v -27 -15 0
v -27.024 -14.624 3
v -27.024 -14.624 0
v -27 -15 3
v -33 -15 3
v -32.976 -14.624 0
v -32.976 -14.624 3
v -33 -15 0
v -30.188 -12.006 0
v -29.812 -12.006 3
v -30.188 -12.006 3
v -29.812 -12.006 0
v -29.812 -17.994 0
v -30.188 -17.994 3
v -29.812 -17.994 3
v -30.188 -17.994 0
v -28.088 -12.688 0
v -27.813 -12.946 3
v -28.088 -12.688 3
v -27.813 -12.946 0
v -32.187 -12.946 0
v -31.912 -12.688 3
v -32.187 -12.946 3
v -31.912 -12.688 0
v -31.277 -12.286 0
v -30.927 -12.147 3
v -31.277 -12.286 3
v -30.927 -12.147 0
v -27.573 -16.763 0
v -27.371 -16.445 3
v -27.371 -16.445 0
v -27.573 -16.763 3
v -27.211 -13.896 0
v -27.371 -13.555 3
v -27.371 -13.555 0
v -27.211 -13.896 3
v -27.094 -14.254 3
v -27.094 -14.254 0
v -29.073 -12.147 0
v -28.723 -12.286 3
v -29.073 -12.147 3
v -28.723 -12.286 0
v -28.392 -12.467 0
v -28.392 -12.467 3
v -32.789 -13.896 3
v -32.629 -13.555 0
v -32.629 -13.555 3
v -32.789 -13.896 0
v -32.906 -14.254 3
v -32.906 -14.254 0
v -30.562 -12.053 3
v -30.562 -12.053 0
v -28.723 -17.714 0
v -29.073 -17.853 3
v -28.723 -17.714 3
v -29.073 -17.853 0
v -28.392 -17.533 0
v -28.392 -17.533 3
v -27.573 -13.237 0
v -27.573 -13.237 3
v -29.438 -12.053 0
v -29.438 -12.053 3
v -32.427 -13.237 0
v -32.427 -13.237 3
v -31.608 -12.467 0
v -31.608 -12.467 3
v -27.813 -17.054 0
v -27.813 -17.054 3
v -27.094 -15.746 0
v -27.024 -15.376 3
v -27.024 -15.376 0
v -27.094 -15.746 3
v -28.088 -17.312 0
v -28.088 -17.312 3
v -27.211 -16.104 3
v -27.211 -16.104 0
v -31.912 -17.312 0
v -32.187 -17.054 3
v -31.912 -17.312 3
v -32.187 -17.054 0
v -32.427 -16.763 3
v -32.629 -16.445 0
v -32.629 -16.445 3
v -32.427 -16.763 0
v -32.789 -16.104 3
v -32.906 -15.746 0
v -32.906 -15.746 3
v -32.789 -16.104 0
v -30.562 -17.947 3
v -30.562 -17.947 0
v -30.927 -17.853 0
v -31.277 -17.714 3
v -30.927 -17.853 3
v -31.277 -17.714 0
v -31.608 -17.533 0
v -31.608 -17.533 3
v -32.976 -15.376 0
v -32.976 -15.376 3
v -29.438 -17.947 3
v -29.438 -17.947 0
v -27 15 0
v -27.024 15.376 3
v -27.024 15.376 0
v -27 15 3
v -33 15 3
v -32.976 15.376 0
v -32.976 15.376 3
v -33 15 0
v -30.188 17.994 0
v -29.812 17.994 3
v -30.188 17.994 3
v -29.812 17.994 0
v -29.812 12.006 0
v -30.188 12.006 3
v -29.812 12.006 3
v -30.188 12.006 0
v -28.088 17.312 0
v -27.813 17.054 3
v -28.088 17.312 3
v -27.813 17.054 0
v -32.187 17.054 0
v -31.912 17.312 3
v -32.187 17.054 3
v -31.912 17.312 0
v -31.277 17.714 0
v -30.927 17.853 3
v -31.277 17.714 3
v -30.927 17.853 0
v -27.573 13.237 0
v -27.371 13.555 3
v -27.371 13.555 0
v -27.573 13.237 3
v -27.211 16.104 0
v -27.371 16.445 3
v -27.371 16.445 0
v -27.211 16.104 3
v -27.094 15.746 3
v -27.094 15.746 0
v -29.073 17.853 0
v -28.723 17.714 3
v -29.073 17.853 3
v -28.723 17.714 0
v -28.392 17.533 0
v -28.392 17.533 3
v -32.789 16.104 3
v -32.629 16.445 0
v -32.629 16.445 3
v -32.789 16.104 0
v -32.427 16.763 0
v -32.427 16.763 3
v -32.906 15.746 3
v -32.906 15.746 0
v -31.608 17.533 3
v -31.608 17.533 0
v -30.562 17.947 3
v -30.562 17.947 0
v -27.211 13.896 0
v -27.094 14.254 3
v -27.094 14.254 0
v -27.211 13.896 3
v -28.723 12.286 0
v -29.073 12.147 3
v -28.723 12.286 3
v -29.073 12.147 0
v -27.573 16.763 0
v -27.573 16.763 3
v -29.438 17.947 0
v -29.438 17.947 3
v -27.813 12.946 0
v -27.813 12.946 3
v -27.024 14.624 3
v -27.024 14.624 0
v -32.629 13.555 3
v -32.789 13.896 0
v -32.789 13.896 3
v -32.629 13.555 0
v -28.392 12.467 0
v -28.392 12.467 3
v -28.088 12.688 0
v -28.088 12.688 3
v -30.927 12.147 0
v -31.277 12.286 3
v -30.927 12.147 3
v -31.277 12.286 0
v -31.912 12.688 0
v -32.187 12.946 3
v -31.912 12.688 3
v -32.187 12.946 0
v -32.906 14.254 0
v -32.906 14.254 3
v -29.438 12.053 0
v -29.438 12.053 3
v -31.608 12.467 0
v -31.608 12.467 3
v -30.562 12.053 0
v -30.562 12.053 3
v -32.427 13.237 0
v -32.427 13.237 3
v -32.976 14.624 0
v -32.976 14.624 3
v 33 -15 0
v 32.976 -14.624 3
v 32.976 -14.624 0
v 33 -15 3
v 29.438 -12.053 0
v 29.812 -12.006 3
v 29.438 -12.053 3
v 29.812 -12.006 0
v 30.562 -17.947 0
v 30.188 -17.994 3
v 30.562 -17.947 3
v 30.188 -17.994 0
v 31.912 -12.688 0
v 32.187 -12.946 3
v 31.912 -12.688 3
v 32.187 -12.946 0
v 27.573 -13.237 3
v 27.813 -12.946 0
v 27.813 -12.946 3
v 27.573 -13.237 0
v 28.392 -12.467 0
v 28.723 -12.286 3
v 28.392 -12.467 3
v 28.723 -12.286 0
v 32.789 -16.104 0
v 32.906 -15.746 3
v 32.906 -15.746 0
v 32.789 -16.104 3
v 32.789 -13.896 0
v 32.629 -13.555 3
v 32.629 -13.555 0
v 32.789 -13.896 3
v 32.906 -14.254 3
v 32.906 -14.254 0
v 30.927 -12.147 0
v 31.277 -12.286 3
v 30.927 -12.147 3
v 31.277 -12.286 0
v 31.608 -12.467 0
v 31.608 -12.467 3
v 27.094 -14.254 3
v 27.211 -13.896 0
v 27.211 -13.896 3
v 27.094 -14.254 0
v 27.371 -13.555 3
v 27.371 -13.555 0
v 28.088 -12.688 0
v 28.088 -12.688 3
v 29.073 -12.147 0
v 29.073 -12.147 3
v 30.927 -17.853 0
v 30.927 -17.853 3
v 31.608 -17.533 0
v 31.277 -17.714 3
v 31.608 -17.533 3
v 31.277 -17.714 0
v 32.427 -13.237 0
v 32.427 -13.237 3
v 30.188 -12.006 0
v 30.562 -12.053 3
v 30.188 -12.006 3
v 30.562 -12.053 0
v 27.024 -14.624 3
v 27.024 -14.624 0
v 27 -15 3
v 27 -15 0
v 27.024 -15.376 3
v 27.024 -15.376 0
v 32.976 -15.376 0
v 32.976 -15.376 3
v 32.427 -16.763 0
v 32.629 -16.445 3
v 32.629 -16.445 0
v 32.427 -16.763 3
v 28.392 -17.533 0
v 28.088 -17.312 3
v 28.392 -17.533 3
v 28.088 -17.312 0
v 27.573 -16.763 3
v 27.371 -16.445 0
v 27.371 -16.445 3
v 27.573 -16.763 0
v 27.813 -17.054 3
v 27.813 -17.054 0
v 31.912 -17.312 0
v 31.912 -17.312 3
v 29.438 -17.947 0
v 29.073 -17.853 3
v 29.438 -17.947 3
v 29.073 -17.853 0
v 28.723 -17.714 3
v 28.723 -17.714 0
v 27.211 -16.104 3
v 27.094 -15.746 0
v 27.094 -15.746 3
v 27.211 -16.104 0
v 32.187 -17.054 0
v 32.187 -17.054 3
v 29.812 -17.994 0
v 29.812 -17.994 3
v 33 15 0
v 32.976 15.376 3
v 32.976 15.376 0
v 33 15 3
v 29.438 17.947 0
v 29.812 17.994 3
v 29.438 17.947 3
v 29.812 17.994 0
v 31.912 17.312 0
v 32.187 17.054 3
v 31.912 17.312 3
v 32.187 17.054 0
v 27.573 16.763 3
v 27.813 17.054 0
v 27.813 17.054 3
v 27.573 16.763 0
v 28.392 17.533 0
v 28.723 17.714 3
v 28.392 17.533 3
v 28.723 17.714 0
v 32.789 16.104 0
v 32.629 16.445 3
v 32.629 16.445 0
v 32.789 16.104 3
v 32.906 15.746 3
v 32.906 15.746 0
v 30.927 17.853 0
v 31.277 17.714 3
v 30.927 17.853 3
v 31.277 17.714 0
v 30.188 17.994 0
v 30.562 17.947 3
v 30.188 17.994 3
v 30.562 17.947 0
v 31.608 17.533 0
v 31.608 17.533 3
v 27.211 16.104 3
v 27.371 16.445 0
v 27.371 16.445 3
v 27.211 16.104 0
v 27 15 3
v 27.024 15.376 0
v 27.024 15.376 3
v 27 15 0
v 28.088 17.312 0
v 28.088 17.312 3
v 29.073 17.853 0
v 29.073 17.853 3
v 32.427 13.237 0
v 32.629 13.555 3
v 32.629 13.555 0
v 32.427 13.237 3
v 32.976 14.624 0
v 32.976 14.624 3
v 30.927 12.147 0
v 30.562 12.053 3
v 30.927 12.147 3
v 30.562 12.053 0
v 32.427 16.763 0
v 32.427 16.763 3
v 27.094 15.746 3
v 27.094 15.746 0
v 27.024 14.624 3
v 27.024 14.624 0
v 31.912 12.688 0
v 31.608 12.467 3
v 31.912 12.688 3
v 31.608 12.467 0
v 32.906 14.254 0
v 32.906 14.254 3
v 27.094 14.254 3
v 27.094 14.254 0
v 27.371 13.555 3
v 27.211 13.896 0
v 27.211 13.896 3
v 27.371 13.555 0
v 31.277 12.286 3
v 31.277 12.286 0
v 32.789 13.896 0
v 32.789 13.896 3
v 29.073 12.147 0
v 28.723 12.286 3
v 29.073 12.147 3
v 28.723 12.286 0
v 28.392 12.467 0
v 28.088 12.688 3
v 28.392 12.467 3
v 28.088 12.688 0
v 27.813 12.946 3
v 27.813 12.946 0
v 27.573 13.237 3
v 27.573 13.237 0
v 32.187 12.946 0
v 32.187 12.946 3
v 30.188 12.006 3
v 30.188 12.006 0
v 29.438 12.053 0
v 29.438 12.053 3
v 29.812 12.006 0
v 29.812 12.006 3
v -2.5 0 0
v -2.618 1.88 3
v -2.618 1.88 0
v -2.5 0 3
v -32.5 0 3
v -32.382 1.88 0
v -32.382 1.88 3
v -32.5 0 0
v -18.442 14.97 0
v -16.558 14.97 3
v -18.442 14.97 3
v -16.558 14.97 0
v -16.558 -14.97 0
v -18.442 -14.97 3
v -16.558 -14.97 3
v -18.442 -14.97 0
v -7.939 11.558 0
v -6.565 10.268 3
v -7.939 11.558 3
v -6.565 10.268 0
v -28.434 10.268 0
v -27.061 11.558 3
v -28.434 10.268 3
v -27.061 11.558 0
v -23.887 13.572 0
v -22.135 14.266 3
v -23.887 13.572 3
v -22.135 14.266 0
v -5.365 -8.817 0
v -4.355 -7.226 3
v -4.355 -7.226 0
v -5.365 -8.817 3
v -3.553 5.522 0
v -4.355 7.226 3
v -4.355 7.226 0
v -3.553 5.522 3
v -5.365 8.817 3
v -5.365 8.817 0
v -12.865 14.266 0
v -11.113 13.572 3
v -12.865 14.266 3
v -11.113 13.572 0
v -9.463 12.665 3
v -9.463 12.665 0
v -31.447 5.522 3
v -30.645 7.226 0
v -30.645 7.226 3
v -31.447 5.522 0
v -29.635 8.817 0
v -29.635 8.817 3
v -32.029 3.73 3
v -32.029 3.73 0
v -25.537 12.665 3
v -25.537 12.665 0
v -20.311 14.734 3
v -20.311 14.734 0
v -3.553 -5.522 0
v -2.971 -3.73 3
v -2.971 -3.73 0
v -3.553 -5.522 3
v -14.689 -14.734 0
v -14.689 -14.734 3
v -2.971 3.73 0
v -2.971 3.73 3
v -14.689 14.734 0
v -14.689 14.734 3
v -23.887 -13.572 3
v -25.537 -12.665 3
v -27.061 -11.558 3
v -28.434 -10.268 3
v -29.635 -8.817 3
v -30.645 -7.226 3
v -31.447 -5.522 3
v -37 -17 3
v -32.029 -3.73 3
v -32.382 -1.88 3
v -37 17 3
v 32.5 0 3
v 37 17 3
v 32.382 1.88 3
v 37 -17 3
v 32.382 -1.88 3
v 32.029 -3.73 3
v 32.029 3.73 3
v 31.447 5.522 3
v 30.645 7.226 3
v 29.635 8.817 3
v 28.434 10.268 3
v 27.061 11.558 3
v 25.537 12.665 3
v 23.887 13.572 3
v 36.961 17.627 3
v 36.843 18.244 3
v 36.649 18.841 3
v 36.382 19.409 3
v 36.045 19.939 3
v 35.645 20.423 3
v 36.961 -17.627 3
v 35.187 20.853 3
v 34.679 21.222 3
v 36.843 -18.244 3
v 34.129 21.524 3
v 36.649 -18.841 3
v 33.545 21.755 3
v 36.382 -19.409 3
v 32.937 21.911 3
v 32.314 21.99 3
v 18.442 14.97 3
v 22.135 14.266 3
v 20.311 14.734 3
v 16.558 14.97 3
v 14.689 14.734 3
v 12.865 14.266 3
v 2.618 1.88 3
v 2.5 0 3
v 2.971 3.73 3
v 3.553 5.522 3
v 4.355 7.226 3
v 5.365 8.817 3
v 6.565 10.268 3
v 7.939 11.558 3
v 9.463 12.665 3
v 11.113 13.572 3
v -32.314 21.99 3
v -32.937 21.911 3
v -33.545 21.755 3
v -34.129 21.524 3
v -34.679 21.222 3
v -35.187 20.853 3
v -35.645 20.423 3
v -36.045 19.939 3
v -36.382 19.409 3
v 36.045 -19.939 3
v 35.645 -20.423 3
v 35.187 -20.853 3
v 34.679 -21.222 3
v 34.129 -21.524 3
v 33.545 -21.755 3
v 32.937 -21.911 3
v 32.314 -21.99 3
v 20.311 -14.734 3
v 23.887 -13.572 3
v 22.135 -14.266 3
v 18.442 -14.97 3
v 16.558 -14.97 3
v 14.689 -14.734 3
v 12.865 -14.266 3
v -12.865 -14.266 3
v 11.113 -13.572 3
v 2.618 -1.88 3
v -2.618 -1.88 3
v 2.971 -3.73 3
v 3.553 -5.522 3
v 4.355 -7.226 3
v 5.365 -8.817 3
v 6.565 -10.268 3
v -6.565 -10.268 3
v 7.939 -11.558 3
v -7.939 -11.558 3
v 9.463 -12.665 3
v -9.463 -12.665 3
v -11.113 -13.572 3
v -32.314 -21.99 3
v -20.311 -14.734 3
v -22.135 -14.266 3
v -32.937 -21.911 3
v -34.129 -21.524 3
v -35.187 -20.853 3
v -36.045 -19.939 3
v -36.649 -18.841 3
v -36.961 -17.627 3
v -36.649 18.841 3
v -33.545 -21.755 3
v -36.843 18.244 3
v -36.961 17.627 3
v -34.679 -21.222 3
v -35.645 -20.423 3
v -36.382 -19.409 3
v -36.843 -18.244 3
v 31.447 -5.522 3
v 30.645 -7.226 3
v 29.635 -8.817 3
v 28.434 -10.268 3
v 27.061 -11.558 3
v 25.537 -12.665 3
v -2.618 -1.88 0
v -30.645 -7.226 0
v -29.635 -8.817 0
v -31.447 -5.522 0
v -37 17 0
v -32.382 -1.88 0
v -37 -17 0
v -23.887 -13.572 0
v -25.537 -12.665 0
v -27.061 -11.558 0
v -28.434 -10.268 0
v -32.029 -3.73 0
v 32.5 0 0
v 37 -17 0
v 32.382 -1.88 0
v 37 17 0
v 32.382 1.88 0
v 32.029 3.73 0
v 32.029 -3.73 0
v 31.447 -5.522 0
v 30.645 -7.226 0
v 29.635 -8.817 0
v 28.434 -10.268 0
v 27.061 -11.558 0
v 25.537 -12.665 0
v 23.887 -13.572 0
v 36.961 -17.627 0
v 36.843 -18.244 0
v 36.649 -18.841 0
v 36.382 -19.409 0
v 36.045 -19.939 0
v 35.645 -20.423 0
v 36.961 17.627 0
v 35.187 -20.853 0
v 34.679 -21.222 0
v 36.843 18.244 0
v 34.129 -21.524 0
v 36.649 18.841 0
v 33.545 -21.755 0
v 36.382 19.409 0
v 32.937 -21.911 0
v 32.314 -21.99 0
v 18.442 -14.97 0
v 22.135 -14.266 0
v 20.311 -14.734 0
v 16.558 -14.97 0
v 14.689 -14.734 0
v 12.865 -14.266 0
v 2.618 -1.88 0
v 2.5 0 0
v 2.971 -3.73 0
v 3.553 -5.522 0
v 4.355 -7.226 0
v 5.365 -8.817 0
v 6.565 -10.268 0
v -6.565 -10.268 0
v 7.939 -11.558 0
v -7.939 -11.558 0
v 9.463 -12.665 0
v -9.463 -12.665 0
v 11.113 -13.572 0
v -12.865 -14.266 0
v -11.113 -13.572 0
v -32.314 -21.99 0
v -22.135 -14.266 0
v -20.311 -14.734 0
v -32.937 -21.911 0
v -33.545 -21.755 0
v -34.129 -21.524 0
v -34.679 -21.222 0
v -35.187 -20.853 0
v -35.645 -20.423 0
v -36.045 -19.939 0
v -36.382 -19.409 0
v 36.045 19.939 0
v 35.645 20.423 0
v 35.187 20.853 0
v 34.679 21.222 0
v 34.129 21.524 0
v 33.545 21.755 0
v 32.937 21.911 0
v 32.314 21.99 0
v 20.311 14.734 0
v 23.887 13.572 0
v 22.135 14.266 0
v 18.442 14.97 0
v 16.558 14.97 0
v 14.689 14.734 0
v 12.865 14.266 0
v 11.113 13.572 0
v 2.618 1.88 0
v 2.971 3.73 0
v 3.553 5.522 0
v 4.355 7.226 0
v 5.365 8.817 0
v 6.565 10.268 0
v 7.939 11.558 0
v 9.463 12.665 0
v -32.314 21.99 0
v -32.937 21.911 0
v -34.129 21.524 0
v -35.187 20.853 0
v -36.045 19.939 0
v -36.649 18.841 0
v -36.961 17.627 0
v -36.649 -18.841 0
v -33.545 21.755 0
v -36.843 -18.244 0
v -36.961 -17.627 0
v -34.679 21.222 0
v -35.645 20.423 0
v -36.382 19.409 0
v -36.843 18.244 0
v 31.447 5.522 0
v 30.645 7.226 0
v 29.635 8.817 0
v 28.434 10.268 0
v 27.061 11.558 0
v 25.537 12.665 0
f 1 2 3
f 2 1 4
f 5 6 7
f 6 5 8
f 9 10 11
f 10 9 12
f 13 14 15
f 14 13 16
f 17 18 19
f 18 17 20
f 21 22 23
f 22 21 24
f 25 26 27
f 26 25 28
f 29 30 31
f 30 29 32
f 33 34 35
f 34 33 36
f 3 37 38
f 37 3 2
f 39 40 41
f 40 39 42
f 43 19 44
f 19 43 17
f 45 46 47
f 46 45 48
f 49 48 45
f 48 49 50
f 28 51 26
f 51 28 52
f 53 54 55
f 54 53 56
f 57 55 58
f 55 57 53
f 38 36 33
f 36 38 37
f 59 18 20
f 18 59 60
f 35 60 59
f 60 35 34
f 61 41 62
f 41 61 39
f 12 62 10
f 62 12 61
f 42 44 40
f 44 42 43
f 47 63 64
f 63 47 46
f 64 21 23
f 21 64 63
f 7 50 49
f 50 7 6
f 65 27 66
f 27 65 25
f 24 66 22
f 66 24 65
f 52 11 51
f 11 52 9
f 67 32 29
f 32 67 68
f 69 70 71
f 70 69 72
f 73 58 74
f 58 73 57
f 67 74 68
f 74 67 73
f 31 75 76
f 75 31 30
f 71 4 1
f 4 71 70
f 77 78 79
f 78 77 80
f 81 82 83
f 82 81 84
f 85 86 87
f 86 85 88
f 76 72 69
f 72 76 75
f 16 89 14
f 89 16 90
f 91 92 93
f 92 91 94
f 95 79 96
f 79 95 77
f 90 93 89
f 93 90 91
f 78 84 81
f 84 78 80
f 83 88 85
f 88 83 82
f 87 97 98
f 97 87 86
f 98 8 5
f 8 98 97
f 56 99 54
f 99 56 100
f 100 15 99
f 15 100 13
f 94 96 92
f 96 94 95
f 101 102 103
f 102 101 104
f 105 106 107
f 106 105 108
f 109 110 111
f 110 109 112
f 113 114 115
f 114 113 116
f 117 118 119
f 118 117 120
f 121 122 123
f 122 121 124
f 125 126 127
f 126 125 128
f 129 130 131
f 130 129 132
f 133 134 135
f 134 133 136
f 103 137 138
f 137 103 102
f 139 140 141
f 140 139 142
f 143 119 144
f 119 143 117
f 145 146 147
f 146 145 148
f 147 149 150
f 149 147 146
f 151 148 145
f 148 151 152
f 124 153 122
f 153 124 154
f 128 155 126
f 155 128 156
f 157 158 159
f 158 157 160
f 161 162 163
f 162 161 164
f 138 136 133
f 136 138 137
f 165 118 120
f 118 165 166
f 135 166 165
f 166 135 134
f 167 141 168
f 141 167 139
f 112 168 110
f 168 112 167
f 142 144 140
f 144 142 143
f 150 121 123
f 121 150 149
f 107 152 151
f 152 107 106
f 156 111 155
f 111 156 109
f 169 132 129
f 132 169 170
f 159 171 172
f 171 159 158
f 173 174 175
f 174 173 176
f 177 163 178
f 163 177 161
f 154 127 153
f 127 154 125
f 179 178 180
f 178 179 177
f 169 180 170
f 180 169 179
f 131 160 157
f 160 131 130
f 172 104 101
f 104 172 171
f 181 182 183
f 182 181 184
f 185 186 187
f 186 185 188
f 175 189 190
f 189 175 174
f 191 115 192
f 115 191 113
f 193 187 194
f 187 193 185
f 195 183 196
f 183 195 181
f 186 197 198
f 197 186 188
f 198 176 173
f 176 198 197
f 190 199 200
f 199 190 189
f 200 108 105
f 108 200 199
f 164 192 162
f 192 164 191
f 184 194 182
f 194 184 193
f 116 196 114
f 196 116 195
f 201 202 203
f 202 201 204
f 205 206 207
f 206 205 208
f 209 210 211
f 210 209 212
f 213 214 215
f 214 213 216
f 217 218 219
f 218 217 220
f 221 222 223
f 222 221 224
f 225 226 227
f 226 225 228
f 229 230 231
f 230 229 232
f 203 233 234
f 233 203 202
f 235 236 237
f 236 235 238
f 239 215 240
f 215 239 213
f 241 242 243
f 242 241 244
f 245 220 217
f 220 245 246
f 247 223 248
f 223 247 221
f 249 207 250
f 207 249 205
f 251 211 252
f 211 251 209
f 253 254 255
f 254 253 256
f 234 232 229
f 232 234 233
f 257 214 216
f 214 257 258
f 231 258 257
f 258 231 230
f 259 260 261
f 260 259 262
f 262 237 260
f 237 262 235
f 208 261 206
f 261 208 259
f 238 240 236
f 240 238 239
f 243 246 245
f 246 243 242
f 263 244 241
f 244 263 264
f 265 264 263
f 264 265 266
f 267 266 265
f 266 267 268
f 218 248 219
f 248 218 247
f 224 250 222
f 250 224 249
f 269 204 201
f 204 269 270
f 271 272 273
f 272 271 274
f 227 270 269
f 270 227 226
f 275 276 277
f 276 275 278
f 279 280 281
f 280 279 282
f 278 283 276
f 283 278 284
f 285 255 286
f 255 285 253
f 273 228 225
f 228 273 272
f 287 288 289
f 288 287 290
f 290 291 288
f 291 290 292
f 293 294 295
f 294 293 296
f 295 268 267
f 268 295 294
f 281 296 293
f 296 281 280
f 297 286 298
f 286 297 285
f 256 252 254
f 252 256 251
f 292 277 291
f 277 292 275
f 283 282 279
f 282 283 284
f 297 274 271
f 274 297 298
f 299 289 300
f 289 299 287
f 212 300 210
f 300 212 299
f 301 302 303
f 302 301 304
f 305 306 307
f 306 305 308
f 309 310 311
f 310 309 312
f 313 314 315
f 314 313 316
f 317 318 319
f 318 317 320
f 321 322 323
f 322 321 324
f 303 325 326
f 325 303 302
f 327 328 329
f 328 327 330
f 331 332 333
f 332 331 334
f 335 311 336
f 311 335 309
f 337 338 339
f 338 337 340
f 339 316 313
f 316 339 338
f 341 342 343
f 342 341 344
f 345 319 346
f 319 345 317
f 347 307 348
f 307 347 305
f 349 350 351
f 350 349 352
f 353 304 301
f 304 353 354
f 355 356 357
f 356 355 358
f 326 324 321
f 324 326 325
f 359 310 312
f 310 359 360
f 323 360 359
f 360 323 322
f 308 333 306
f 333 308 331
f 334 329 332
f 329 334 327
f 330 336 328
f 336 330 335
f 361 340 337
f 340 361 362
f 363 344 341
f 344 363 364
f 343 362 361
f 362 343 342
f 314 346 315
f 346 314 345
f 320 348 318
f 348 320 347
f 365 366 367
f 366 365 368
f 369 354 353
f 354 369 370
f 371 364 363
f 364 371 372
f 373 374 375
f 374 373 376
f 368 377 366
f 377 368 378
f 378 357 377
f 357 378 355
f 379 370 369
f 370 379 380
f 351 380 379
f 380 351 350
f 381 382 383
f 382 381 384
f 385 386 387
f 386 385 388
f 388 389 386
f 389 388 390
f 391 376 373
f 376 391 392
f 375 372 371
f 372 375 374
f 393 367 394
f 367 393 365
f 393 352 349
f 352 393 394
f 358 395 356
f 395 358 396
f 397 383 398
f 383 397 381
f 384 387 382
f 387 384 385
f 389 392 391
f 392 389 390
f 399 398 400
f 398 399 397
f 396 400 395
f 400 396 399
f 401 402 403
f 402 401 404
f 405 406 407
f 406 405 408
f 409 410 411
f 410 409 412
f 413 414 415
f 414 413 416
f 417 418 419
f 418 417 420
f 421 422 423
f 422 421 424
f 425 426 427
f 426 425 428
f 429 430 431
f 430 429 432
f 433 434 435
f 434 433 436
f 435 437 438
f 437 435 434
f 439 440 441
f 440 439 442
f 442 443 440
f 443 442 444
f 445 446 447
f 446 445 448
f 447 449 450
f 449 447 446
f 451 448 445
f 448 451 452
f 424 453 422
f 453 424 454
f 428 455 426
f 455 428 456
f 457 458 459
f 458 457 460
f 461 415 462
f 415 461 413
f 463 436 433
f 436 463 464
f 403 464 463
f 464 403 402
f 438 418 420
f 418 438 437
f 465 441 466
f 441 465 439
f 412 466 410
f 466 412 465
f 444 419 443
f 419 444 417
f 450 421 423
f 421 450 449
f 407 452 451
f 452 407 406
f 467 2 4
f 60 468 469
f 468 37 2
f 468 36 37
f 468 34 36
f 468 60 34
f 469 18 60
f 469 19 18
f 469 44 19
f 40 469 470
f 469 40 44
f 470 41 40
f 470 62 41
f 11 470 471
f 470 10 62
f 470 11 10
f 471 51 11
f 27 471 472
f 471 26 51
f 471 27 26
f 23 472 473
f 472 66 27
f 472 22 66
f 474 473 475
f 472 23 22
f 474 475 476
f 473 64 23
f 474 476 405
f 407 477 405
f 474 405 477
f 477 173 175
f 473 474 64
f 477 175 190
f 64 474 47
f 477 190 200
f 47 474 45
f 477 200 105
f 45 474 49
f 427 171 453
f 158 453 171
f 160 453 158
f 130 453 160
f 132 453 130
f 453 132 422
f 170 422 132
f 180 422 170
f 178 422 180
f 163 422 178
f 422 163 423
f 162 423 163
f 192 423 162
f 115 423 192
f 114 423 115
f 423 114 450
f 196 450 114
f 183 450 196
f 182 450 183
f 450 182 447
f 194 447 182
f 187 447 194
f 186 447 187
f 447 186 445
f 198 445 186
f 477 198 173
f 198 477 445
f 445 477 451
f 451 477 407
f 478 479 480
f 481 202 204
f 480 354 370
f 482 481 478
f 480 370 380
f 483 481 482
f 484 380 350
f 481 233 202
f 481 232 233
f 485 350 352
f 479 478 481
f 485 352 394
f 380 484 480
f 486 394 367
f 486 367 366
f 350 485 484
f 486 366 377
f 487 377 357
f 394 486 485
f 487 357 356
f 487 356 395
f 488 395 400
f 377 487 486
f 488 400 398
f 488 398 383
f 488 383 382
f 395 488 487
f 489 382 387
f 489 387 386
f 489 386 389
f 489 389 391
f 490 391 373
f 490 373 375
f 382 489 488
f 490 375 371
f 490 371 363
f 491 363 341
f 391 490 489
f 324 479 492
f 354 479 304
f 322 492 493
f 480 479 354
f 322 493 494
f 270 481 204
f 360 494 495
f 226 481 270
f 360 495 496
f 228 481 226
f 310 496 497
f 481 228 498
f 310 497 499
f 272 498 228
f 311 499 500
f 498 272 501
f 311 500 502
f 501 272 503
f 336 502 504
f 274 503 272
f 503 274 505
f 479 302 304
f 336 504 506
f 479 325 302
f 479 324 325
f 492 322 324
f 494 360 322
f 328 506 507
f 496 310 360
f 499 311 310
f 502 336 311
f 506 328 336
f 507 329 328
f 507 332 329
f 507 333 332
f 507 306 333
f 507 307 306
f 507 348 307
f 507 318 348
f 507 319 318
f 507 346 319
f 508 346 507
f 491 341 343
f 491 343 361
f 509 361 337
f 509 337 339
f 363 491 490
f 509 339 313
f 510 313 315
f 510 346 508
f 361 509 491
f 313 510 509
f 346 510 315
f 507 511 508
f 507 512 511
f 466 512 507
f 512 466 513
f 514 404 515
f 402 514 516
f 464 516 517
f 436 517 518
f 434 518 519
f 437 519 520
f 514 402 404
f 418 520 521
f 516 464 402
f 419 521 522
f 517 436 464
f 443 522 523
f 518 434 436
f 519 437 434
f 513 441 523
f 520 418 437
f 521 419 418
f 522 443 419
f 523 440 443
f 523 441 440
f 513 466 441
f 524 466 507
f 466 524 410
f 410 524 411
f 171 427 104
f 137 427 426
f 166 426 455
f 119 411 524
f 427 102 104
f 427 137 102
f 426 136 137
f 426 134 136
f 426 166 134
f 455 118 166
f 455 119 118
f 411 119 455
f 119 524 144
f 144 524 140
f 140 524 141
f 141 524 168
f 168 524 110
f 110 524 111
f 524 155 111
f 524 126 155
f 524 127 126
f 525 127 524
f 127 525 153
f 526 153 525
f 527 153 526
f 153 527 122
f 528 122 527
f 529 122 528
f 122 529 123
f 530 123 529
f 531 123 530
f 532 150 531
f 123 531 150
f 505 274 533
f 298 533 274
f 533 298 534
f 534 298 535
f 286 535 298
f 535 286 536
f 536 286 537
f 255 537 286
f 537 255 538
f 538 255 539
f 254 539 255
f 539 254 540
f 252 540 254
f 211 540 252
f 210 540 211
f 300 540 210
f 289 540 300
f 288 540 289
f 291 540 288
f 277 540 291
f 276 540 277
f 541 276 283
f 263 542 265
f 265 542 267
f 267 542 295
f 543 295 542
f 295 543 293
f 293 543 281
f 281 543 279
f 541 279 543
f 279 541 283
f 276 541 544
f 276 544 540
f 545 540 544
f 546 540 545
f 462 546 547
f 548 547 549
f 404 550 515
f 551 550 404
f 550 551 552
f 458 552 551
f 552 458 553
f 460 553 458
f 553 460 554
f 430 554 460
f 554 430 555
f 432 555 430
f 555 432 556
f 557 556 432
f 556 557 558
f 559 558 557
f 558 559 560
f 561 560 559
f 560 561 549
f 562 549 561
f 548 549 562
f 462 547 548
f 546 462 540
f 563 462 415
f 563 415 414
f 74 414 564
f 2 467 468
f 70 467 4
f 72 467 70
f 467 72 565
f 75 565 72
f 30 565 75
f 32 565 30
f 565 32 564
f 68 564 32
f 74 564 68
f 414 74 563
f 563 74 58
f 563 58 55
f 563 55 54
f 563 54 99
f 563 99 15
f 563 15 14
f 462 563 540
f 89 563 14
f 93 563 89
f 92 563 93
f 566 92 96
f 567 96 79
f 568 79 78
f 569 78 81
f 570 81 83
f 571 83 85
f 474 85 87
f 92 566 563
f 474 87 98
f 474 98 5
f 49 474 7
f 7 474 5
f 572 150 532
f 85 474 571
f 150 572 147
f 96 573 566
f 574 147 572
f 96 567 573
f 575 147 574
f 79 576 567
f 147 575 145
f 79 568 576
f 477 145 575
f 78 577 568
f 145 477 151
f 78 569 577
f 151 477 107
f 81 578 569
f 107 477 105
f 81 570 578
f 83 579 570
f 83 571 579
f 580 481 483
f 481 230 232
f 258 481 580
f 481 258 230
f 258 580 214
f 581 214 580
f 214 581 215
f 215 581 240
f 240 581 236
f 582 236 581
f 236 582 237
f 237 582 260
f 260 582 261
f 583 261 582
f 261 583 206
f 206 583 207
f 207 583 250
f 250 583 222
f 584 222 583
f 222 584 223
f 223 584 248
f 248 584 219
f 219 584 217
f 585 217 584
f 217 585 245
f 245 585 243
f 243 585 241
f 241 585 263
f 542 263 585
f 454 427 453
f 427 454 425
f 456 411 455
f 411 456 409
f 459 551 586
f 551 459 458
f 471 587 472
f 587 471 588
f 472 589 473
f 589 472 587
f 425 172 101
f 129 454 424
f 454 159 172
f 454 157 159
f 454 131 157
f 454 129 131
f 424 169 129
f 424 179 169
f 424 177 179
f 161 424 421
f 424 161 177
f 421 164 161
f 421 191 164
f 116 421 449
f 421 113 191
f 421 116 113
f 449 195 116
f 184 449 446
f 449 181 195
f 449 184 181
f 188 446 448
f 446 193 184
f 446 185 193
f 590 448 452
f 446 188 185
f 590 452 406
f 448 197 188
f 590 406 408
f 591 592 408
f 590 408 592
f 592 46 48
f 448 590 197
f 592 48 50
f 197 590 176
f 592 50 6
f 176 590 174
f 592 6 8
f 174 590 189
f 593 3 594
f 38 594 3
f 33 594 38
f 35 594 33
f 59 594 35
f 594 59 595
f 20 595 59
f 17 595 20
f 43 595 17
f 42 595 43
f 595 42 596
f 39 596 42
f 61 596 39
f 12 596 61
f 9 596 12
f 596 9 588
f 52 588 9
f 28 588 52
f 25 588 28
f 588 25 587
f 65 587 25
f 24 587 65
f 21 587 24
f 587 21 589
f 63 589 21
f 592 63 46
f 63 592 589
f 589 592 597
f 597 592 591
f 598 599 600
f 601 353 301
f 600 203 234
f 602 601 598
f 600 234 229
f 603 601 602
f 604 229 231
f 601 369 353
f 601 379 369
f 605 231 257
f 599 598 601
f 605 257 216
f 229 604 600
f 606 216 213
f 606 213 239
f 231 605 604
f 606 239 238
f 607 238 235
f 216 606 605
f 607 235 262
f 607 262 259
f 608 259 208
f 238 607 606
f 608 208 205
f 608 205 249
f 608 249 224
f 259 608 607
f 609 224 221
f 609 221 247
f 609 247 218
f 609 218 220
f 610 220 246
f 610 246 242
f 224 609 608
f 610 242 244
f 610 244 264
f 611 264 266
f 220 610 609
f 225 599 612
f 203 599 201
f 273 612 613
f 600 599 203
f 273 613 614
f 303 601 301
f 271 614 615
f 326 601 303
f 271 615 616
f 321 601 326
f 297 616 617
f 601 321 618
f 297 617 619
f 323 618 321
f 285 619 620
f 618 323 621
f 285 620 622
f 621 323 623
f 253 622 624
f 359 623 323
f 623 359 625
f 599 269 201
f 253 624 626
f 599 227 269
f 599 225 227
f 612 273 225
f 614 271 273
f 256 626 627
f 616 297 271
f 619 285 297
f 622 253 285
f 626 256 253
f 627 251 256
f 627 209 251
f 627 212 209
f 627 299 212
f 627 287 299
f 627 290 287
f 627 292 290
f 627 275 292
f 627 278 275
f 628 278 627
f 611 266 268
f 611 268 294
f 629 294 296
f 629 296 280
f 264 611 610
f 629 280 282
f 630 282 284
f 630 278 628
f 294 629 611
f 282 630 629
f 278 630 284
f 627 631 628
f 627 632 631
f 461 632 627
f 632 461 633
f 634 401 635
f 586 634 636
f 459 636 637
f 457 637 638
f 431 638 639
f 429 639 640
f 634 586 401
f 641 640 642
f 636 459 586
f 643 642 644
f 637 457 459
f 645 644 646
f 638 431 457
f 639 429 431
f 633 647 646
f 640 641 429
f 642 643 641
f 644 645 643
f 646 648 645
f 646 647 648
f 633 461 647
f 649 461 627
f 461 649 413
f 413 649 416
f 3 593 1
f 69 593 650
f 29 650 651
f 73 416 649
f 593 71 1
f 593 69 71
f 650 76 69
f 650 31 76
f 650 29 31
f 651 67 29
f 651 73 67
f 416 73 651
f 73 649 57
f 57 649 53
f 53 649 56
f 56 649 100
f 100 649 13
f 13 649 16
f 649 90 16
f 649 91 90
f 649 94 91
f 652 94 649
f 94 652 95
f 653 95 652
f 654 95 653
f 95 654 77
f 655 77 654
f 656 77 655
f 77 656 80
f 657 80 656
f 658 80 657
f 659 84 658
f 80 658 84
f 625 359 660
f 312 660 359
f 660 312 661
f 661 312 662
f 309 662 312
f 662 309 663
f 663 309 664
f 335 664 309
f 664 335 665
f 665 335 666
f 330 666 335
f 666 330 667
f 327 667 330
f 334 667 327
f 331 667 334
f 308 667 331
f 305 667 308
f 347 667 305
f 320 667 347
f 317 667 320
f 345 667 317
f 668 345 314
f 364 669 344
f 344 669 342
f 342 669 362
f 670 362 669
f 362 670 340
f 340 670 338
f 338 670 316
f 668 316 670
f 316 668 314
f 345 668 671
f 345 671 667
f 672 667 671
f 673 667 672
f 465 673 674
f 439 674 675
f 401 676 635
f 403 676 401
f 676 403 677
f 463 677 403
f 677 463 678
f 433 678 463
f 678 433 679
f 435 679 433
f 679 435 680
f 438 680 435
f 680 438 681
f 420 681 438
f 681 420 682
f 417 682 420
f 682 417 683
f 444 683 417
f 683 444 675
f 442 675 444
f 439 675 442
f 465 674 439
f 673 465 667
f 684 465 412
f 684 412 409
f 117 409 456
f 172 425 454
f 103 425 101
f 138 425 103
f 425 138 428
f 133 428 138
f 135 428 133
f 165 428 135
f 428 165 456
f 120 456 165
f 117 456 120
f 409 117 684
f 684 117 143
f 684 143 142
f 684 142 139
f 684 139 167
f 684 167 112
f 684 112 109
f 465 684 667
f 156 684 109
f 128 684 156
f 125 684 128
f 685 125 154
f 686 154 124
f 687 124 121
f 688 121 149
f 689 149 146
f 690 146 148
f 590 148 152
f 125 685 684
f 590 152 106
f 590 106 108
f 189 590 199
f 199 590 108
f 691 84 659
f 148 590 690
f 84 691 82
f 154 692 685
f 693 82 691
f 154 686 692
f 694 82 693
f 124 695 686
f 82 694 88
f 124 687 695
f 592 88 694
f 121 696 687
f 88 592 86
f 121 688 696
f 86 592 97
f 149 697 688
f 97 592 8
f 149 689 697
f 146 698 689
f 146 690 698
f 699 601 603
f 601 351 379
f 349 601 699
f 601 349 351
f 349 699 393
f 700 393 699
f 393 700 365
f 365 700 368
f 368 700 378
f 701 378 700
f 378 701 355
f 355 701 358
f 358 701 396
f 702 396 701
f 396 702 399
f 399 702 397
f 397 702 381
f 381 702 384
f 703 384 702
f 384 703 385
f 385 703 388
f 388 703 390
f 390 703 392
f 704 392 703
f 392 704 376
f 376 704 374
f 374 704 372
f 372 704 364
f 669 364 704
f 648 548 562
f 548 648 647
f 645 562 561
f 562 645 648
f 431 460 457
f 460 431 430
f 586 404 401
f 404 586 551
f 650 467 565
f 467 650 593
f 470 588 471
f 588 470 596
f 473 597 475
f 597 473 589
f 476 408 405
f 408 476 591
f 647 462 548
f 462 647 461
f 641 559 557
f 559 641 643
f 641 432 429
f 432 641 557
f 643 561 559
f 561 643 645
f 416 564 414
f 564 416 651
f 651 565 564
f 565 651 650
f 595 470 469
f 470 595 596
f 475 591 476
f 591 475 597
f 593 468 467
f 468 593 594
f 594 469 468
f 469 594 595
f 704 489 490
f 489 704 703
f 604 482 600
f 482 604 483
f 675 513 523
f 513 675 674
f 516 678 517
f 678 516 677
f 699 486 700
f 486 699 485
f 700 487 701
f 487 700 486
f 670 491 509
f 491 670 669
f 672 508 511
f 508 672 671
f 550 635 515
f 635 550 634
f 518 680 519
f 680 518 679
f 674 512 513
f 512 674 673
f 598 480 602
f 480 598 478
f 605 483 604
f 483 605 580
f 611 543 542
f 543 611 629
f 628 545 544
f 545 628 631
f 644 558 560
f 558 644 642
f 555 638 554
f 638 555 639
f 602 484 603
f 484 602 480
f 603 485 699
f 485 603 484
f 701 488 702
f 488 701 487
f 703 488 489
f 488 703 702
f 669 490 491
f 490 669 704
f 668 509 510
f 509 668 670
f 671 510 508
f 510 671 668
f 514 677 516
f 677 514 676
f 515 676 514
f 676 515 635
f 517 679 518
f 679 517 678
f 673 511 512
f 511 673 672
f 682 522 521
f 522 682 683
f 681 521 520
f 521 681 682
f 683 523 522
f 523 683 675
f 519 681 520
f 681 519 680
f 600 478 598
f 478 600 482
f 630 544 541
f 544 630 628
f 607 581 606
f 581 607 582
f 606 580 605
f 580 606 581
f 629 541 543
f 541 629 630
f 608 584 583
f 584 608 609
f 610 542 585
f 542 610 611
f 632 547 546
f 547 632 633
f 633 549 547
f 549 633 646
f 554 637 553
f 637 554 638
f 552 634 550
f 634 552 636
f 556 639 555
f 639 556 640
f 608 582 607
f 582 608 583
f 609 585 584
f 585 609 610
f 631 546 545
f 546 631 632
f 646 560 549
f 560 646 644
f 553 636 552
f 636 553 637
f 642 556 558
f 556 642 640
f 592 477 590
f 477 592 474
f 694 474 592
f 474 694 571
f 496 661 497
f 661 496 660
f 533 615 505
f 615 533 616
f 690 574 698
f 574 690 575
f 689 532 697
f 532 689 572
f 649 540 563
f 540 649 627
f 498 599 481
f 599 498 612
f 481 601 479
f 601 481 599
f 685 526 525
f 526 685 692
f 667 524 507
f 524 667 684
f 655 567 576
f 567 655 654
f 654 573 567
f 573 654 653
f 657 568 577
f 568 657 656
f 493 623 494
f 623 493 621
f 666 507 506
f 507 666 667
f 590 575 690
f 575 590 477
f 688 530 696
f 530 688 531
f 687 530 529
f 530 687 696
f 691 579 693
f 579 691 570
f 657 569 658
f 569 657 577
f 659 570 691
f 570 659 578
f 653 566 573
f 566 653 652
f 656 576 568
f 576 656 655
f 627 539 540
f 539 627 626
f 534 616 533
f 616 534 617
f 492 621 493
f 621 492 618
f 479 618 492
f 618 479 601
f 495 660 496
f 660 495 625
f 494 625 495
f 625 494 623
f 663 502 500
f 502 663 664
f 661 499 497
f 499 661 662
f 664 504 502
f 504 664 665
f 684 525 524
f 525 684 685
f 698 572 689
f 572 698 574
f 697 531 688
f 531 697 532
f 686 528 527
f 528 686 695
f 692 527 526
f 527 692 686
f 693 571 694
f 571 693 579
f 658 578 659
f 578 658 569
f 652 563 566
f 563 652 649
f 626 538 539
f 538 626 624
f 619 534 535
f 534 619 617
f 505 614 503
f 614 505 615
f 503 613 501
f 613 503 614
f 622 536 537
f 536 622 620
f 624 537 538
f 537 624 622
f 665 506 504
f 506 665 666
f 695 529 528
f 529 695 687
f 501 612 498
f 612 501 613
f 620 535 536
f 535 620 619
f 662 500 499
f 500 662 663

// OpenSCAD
$fn = 50;


difference() {
	union() {
		hull() {
			translate(v = [-32.0000000000, 17.0000000000, 0]) {
				cylinder(h = 3, r = 5);
			}
			translate(v = [32.0000000000, 17.0000000000, 0]) {
				cylinder(h = 3, r = 5);
			}
			translate(v = [-32.0000000000, -17.0000000000, 0]) {
				cylinder(h = 3, r = 5);
			}
			translate(v = [32.0000000000, -17.0000000000, 0]) {
				cylinder(h = 3, r = 5);
			}
		}
	}
	union() {
		#translate(v = [-30.0000000000, -15.0000000000, -100.0000000000]) {
			cylinder(h = 200, r = 3.0000000000);
		}
		#translate(v = [-30.0000000000, 15.0000000000, -100.0000000000]) {
			cylinder(h = 200, r = 3.0000000000);
		}
		#translate(v = [30.0000000000, -15.0000000000, -100.0000000000]) {
			cylinder(h = 200, r = 3.0000000000);
		}
		#translate(v = [30.0000000000, 15.0000000000, -100.0000000000]) {
			cylinder(h = 200, r = 3.0000000000);
		}
		#translate(v = [-17.5000000000, 0, 0]) {
			cylinder(h = 3, r = 15.0000000000);
		}
		#translate(v = [17.5000000000, 0, 0]) {
			cylinder(h = 3, r = 15.0000000000);
		}
	}
}
